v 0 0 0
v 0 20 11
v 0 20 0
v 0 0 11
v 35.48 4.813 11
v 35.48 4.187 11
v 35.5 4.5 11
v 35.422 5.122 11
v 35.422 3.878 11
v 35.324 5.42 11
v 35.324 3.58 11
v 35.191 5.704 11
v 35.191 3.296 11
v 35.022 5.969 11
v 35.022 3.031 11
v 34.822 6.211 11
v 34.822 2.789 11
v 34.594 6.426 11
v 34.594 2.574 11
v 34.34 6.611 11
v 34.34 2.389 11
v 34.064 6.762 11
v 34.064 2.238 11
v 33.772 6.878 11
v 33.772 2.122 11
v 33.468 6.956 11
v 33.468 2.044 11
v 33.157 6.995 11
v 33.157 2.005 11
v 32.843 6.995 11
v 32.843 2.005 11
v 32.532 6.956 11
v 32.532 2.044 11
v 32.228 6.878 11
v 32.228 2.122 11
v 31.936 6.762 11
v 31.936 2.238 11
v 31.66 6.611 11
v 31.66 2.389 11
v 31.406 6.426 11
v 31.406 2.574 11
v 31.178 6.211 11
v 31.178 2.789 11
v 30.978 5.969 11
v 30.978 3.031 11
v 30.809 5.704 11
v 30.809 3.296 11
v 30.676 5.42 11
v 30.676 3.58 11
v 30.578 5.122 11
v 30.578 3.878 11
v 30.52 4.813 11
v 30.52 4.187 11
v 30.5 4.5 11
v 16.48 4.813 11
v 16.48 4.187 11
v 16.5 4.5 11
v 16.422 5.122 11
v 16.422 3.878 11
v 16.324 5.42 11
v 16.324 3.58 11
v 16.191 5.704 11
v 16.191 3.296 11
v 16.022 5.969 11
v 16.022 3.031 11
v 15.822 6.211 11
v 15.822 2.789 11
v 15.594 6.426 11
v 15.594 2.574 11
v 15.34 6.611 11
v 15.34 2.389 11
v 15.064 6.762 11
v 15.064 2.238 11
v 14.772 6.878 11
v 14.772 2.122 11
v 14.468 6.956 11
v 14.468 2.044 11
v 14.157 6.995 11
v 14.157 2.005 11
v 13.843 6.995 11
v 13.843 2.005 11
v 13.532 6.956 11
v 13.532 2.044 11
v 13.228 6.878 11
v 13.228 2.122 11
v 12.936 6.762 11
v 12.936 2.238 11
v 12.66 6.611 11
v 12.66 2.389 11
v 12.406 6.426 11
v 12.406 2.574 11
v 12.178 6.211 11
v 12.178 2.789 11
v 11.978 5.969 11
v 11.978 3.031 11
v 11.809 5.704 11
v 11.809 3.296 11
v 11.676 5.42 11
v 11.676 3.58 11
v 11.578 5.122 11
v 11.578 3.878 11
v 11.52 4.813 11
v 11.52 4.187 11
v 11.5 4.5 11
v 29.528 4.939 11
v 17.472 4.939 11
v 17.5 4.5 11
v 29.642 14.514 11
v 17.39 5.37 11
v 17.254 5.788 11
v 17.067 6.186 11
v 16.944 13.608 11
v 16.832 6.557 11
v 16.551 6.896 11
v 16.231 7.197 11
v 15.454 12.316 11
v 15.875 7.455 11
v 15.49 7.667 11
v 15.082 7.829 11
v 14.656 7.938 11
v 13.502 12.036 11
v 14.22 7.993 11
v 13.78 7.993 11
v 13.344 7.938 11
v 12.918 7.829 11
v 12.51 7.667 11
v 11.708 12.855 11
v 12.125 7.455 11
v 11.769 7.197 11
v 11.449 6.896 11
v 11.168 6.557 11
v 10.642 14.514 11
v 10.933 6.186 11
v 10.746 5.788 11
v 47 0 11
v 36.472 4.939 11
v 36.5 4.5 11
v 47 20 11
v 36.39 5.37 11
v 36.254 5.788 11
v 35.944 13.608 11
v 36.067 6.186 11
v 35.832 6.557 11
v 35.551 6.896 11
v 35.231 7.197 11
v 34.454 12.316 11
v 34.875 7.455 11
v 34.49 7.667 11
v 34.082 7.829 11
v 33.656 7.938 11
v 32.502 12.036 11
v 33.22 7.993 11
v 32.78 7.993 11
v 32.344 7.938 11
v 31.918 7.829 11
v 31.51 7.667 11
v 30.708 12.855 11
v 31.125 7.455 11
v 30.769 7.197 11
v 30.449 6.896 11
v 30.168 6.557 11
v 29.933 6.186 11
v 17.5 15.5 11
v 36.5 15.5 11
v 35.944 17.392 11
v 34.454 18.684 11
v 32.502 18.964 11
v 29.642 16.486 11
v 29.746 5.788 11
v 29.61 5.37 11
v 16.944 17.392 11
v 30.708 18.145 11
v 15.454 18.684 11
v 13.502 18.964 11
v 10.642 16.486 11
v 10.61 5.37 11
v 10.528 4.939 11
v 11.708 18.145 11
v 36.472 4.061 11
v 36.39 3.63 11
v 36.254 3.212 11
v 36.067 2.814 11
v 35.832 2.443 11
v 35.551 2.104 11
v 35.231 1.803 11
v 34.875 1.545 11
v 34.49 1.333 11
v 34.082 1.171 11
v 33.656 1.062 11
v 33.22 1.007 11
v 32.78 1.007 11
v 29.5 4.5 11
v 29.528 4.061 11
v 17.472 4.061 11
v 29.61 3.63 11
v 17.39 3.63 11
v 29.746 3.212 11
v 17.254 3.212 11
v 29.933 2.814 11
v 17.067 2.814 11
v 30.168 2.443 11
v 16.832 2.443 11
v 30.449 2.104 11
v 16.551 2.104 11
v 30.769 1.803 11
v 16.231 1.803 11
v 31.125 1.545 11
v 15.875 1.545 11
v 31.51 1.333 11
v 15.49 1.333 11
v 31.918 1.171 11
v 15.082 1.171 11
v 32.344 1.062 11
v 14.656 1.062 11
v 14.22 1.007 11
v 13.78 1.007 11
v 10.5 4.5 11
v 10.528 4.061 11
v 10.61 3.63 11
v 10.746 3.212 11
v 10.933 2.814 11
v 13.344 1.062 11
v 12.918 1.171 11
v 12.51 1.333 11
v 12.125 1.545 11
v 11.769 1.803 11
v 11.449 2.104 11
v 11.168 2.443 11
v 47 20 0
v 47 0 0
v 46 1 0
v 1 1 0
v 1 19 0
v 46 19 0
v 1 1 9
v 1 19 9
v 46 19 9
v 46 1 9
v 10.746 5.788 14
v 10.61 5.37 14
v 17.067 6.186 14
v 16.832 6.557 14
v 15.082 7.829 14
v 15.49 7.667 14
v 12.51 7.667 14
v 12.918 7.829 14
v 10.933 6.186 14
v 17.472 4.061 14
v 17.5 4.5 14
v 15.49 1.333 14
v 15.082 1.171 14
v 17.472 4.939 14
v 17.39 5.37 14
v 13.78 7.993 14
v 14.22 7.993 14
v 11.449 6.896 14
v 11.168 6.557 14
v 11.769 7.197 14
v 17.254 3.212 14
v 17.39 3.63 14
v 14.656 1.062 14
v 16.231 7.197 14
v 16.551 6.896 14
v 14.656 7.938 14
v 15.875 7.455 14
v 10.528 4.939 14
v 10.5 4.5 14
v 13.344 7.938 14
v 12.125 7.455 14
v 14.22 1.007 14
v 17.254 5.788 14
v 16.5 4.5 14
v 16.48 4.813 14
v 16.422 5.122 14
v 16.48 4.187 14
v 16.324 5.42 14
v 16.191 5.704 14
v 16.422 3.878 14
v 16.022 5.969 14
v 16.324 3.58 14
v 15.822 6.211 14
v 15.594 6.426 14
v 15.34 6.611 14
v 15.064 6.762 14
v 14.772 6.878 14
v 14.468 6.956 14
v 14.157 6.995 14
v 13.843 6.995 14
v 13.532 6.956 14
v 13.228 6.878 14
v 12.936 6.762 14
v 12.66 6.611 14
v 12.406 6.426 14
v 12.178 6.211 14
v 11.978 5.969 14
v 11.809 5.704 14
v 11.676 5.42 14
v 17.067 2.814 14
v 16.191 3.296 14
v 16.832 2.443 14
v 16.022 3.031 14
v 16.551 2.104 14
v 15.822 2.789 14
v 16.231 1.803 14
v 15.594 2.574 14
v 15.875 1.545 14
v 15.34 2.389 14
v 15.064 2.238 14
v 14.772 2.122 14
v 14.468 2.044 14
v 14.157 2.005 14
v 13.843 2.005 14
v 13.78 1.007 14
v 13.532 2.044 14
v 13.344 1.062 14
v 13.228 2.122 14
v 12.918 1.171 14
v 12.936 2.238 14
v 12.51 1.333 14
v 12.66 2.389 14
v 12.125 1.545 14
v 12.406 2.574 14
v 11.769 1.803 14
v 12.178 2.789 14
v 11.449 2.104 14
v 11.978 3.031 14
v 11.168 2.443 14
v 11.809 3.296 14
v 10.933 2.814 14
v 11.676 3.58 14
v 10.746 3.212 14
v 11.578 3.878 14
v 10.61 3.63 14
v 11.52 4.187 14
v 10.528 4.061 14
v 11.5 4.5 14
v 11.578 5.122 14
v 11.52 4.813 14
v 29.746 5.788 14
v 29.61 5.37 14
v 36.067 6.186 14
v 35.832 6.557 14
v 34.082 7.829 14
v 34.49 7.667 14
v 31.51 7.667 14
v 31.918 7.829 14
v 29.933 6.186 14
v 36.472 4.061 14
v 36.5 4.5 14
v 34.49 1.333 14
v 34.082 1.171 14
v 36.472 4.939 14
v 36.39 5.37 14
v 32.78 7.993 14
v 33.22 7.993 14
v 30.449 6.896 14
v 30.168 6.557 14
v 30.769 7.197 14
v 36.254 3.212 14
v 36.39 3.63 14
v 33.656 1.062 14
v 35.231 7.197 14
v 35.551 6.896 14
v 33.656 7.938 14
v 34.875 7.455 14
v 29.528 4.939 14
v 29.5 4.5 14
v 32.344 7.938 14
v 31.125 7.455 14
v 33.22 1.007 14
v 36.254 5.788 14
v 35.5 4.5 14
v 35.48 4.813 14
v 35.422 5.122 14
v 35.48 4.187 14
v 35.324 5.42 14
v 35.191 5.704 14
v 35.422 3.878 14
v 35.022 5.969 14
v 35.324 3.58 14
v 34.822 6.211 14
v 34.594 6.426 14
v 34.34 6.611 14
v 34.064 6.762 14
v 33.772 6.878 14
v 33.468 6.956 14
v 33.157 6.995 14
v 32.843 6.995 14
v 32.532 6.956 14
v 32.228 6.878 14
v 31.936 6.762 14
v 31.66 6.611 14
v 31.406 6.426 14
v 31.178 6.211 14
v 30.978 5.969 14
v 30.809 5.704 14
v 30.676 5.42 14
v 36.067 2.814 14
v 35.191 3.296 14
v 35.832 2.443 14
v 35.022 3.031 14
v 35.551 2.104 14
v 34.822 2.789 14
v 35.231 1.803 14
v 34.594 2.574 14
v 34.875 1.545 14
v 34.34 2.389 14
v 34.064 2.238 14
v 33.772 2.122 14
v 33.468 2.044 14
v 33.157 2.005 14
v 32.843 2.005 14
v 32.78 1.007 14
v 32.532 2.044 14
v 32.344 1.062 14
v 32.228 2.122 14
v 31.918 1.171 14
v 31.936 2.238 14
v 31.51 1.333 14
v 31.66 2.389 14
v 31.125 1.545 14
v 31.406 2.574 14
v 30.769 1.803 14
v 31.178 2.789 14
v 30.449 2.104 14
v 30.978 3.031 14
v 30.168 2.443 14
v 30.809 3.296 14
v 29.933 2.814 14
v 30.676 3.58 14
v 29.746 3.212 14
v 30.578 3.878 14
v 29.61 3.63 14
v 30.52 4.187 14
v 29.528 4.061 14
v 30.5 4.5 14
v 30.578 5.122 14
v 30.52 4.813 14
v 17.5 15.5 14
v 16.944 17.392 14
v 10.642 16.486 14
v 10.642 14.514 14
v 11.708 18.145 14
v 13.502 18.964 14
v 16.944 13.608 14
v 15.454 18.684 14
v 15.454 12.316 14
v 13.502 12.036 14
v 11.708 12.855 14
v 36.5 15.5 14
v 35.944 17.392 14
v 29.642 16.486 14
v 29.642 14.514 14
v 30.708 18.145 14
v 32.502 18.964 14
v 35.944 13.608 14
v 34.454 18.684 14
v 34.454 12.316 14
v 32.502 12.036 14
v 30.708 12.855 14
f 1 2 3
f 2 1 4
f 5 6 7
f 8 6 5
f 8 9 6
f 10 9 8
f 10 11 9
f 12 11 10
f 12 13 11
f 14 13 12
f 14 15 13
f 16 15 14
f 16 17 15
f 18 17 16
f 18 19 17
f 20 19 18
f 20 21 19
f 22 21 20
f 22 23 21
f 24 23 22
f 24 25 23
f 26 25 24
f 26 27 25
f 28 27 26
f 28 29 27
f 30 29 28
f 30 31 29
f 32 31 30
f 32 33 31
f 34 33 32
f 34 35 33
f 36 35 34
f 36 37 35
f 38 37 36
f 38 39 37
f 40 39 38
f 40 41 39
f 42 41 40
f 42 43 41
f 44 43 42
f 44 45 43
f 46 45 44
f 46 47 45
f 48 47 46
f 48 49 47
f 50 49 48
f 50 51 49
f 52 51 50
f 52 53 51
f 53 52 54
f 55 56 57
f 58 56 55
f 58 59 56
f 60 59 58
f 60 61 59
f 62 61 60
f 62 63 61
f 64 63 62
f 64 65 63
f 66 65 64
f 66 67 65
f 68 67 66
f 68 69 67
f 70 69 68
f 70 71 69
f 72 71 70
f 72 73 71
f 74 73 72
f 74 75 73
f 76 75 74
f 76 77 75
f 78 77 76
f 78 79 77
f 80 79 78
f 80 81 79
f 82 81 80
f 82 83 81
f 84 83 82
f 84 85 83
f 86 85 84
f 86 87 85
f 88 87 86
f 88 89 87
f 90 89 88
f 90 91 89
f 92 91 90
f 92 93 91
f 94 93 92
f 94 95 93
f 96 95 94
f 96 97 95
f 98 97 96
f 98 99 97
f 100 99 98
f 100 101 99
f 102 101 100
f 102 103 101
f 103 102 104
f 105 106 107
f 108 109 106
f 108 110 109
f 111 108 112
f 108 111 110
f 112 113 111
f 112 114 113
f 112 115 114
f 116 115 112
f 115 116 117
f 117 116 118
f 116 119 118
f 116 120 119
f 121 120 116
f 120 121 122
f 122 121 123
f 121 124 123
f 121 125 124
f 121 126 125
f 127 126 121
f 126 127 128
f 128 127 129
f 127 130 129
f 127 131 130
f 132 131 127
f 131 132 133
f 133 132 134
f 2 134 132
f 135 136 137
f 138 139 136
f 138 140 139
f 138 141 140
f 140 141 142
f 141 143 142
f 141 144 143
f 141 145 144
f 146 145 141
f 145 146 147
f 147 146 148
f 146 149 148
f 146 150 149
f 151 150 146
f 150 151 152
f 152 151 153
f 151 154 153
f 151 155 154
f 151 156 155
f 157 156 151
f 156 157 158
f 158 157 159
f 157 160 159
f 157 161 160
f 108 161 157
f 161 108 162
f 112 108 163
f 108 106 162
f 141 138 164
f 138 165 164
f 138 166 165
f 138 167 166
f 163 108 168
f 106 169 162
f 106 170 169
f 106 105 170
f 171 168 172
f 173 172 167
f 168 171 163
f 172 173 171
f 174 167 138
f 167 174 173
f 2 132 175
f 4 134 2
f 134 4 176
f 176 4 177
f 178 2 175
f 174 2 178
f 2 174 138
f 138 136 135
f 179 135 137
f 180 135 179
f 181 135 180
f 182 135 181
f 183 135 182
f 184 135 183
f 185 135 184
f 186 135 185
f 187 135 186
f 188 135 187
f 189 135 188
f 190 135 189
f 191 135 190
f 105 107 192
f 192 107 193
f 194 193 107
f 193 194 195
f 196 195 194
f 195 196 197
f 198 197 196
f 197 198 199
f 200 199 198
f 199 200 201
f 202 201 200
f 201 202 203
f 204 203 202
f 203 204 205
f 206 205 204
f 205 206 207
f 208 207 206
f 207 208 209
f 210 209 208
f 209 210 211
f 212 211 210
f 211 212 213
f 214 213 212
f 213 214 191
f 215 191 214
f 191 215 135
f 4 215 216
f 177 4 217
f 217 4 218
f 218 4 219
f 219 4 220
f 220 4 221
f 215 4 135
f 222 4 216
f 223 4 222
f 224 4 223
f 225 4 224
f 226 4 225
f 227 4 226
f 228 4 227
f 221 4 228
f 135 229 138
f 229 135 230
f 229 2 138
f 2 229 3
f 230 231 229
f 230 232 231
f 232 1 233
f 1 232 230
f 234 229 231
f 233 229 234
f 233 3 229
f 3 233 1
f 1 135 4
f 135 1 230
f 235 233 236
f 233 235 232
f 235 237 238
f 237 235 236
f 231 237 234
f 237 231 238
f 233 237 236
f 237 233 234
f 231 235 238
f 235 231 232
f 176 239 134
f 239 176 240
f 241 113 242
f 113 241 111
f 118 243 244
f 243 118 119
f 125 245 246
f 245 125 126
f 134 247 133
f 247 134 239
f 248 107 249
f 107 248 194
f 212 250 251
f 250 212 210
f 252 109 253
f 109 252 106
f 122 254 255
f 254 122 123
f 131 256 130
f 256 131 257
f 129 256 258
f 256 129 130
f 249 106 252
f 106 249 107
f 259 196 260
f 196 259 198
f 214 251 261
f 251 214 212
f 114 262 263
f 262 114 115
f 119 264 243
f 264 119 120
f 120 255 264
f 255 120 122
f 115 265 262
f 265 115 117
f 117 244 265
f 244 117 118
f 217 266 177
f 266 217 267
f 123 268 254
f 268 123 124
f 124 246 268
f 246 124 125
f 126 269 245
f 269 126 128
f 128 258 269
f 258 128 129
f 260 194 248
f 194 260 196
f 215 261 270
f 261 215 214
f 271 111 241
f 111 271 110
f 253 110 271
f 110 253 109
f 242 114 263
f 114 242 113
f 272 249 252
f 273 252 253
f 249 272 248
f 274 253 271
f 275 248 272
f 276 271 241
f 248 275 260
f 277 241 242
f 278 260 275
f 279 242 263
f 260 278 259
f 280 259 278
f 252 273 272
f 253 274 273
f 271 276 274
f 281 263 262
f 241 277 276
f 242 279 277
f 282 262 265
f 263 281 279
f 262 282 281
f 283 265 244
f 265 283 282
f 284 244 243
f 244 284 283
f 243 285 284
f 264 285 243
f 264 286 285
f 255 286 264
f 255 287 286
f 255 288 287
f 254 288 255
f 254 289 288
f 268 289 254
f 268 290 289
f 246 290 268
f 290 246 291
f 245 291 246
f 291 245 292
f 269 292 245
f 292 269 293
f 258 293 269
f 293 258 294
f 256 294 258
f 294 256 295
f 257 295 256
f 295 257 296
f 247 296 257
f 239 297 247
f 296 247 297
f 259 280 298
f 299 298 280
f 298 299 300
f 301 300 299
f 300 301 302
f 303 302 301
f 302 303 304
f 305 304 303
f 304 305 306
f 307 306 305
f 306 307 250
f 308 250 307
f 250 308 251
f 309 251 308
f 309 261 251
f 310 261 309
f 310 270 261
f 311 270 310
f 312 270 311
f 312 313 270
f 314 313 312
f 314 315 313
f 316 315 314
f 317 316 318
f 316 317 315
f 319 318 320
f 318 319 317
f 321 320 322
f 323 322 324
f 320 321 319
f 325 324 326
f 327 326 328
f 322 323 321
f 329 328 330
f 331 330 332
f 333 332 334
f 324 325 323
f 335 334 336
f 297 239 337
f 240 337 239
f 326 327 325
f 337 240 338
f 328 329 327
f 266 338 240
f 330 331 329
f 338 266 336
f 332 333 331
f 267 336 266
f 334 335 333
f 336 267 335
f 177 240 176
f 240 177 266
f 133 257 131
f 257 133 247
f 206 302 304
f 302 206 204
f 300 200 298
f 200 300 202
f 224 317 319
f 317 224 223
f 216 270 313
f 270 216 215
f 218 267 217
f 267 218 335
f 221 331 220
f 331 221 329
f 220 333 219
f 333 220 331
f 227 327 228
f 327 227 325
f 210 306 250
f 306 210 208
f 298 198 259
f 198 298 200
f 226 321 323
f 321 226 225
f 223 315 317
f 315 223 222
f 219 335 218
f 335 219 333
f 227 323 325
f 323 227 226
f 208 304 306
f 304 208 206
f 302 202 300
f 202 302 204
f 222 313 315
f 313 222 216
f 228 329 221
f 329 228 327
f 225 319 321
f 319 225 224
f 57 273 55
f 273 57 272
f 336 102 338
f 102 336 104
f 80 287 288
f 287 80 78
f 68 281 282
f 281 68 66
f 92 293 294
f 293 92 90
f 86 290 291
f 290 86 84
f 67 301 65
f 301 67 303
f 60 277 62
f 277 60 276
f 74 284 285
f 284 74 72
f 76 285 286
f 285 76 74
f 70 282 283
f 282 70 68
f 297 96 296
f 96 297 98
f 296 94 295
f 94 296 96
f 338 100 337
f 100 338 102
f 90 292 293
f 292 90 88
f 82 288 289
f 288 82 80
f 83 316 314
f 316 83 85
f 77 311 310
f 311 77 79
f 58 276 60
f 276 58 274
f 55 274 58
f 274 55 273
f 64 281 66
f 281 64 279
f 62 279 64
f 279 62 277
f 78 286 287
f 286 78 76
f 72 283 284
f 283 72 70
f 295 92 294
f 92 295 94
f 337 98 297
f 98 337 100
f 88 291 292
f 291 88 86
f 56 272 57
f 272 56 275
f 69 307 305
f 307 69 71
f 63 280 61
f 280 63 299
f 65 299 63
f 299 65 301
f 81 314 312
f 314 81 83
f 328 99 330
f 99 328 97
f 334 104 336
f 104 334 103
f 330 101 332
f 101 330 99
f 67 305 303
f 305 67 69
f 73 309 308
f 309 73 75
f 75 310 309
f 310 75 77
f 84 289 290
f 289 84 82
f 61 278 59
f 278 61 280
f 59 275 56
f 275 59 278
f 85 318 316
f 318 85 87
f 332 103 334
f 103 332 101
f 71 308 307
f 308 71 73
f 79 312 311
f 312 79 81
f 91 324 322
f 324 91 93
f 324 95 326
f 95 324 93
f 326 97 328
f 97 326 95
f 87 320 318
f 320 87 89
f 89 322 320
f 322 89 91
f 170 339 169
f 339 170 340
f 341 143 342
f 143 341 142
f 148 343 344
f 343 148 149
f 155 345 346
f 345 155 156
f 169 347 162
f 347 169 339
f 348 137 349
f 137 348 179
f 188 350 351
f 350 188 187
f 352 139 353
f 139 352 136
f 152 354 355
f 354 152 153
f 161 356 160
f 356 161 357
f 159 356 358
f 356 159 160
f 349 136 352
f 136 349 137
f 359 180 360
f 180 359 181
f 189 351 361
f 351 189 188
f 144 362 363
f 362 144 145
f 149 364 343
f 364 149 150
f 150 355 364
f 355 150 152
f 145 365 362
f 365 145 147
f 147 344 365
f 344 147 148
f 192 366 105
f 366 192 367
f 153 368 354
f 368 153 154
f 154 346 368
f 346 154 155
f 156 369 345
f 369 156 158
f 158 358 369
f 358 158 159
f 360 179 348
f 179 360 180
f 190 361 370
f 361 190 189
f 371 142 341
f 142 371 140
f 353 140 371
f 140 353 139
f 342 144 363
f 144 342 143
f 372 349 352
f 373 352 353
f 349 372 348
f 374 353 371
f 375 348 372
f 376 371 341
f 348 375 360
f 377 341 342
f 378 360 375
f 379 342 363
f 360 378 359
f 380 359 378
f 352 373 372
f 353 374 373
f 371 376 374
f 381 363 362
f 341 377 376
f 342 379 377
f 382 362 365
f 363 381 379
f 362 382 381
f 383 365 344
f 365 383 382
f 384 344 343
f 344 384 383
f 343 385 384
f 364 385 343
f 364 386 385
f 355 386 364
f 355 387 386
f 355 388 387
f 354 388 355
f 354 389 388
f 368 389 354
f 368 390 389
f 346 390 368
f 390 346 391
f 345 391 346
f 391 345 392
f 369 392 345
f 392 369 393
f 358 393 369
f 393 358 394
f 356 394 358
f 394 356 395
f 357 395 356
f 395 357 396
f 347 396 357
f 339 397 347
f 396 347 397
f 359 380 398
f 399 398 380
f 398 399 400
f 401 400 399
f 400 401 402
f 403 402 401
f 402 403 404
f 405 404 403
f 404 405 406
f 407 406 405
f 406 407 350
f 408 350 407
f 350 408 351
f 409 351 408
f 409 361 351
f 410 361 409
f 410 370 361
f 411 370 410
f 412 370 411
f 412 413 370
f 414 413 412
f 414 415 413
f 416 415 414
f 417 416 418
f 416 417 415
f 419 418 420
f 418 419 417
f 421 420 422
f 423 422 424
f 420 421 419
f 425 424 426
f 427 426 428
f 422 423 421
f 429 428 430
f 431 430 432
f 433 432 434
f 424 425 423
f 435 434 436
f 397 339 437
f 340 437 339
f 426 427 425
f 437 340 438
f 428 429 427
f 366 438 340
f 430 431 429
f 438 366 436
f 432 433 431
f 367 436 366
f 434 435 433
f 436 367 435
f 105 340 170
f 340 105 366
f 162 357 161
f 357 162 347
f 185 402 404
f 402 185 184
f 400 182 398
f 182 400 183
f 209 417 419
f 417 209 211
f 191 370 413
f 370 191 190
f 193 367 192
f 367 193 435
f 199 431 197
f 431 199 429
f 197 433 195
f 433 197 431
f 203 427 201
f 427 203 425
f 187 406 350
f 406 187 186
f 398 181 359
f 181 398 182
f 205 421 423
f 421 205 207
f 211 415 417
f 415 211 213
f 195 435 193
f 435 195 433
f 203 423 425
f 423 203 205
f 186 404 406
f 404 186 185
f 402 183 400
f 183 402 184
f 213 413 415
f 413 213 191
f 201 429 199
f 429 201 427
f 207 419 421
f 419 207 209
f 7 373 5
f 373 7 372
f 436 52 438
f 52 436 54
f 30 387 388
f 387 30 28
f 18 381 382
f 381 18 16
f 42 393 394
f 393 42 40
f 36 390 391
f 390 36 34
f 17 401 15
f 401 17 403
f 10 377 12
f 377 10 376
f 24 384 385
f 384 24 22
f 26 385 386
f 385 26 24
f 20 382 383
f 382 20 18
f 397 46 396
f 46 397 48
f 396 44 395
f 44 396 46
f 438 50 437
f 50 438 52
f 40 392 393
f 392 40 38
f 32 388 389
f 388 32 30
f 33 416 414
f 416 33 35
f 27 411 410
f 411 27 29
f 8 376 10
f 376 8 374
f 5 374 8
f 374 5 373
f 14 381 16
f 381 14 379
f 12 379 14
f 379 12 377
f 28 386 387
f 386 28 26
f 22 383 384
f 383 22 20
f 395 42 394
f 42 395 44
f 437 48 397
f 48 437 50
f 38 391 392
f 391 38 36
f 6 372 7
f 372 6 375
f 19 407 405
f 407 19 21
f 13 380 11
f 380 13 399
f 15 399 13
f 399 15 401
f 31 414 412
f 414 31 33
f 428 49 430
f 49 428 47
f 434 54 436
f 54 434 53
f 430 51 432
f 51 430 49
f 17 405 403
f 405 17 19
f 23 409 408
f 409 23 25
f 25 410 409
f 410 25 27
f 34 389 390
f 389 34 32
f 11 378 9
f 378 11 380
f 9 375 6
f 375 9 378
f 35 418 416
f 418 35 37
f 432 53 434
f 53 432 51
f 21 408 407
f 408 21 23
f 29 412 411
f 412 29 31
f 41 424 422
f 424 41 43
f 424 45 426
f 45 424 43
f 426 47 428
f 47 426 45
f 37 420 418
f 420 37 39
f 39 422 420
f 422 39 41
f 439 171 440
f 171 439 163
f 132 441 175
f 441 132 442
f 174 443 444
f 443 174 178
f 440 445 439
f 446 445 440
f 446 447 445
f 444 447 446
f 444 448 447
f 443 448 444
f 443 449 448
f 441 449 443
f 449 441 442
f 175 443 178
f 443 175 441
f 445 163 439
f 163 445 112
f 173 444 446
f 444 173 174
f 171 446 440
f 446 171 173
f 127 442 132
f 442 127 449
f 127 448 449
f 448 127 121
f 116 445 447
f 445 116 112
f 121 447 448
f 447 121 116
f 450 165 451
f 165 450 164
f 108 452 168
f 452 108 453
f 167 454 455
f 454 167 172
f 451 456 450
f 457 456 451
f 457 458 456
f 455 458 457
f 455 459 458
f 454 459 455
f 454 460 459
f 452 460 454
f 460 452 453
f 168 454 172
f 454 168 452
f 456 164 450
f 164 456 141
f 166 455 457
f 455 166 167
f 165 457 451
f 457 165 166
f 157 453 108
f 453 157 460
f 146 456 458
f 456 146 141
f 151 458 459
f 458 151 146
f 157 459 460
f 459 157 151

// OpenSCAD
difference() {cube([47,20,11]);translate([1,1,0]) cube([45,18,9]);}
translate([14,4.5,11]) difference() {cylinder($fn=50,3,3.5,3.5, false);cylinder($fn=50,3,2.5,2.5, false);}
translate([14,15.5,11]) cylinder(3,3.5,3.5, false);
translate([33,15.5,11]) cylinder(3,3.5,3.5, false);
translate([33,4.5,11]) difference() {cylinder($fn=50,3,3.5,3.5, false);cylinder($fn=50,3,2.5,2.5, false);}
